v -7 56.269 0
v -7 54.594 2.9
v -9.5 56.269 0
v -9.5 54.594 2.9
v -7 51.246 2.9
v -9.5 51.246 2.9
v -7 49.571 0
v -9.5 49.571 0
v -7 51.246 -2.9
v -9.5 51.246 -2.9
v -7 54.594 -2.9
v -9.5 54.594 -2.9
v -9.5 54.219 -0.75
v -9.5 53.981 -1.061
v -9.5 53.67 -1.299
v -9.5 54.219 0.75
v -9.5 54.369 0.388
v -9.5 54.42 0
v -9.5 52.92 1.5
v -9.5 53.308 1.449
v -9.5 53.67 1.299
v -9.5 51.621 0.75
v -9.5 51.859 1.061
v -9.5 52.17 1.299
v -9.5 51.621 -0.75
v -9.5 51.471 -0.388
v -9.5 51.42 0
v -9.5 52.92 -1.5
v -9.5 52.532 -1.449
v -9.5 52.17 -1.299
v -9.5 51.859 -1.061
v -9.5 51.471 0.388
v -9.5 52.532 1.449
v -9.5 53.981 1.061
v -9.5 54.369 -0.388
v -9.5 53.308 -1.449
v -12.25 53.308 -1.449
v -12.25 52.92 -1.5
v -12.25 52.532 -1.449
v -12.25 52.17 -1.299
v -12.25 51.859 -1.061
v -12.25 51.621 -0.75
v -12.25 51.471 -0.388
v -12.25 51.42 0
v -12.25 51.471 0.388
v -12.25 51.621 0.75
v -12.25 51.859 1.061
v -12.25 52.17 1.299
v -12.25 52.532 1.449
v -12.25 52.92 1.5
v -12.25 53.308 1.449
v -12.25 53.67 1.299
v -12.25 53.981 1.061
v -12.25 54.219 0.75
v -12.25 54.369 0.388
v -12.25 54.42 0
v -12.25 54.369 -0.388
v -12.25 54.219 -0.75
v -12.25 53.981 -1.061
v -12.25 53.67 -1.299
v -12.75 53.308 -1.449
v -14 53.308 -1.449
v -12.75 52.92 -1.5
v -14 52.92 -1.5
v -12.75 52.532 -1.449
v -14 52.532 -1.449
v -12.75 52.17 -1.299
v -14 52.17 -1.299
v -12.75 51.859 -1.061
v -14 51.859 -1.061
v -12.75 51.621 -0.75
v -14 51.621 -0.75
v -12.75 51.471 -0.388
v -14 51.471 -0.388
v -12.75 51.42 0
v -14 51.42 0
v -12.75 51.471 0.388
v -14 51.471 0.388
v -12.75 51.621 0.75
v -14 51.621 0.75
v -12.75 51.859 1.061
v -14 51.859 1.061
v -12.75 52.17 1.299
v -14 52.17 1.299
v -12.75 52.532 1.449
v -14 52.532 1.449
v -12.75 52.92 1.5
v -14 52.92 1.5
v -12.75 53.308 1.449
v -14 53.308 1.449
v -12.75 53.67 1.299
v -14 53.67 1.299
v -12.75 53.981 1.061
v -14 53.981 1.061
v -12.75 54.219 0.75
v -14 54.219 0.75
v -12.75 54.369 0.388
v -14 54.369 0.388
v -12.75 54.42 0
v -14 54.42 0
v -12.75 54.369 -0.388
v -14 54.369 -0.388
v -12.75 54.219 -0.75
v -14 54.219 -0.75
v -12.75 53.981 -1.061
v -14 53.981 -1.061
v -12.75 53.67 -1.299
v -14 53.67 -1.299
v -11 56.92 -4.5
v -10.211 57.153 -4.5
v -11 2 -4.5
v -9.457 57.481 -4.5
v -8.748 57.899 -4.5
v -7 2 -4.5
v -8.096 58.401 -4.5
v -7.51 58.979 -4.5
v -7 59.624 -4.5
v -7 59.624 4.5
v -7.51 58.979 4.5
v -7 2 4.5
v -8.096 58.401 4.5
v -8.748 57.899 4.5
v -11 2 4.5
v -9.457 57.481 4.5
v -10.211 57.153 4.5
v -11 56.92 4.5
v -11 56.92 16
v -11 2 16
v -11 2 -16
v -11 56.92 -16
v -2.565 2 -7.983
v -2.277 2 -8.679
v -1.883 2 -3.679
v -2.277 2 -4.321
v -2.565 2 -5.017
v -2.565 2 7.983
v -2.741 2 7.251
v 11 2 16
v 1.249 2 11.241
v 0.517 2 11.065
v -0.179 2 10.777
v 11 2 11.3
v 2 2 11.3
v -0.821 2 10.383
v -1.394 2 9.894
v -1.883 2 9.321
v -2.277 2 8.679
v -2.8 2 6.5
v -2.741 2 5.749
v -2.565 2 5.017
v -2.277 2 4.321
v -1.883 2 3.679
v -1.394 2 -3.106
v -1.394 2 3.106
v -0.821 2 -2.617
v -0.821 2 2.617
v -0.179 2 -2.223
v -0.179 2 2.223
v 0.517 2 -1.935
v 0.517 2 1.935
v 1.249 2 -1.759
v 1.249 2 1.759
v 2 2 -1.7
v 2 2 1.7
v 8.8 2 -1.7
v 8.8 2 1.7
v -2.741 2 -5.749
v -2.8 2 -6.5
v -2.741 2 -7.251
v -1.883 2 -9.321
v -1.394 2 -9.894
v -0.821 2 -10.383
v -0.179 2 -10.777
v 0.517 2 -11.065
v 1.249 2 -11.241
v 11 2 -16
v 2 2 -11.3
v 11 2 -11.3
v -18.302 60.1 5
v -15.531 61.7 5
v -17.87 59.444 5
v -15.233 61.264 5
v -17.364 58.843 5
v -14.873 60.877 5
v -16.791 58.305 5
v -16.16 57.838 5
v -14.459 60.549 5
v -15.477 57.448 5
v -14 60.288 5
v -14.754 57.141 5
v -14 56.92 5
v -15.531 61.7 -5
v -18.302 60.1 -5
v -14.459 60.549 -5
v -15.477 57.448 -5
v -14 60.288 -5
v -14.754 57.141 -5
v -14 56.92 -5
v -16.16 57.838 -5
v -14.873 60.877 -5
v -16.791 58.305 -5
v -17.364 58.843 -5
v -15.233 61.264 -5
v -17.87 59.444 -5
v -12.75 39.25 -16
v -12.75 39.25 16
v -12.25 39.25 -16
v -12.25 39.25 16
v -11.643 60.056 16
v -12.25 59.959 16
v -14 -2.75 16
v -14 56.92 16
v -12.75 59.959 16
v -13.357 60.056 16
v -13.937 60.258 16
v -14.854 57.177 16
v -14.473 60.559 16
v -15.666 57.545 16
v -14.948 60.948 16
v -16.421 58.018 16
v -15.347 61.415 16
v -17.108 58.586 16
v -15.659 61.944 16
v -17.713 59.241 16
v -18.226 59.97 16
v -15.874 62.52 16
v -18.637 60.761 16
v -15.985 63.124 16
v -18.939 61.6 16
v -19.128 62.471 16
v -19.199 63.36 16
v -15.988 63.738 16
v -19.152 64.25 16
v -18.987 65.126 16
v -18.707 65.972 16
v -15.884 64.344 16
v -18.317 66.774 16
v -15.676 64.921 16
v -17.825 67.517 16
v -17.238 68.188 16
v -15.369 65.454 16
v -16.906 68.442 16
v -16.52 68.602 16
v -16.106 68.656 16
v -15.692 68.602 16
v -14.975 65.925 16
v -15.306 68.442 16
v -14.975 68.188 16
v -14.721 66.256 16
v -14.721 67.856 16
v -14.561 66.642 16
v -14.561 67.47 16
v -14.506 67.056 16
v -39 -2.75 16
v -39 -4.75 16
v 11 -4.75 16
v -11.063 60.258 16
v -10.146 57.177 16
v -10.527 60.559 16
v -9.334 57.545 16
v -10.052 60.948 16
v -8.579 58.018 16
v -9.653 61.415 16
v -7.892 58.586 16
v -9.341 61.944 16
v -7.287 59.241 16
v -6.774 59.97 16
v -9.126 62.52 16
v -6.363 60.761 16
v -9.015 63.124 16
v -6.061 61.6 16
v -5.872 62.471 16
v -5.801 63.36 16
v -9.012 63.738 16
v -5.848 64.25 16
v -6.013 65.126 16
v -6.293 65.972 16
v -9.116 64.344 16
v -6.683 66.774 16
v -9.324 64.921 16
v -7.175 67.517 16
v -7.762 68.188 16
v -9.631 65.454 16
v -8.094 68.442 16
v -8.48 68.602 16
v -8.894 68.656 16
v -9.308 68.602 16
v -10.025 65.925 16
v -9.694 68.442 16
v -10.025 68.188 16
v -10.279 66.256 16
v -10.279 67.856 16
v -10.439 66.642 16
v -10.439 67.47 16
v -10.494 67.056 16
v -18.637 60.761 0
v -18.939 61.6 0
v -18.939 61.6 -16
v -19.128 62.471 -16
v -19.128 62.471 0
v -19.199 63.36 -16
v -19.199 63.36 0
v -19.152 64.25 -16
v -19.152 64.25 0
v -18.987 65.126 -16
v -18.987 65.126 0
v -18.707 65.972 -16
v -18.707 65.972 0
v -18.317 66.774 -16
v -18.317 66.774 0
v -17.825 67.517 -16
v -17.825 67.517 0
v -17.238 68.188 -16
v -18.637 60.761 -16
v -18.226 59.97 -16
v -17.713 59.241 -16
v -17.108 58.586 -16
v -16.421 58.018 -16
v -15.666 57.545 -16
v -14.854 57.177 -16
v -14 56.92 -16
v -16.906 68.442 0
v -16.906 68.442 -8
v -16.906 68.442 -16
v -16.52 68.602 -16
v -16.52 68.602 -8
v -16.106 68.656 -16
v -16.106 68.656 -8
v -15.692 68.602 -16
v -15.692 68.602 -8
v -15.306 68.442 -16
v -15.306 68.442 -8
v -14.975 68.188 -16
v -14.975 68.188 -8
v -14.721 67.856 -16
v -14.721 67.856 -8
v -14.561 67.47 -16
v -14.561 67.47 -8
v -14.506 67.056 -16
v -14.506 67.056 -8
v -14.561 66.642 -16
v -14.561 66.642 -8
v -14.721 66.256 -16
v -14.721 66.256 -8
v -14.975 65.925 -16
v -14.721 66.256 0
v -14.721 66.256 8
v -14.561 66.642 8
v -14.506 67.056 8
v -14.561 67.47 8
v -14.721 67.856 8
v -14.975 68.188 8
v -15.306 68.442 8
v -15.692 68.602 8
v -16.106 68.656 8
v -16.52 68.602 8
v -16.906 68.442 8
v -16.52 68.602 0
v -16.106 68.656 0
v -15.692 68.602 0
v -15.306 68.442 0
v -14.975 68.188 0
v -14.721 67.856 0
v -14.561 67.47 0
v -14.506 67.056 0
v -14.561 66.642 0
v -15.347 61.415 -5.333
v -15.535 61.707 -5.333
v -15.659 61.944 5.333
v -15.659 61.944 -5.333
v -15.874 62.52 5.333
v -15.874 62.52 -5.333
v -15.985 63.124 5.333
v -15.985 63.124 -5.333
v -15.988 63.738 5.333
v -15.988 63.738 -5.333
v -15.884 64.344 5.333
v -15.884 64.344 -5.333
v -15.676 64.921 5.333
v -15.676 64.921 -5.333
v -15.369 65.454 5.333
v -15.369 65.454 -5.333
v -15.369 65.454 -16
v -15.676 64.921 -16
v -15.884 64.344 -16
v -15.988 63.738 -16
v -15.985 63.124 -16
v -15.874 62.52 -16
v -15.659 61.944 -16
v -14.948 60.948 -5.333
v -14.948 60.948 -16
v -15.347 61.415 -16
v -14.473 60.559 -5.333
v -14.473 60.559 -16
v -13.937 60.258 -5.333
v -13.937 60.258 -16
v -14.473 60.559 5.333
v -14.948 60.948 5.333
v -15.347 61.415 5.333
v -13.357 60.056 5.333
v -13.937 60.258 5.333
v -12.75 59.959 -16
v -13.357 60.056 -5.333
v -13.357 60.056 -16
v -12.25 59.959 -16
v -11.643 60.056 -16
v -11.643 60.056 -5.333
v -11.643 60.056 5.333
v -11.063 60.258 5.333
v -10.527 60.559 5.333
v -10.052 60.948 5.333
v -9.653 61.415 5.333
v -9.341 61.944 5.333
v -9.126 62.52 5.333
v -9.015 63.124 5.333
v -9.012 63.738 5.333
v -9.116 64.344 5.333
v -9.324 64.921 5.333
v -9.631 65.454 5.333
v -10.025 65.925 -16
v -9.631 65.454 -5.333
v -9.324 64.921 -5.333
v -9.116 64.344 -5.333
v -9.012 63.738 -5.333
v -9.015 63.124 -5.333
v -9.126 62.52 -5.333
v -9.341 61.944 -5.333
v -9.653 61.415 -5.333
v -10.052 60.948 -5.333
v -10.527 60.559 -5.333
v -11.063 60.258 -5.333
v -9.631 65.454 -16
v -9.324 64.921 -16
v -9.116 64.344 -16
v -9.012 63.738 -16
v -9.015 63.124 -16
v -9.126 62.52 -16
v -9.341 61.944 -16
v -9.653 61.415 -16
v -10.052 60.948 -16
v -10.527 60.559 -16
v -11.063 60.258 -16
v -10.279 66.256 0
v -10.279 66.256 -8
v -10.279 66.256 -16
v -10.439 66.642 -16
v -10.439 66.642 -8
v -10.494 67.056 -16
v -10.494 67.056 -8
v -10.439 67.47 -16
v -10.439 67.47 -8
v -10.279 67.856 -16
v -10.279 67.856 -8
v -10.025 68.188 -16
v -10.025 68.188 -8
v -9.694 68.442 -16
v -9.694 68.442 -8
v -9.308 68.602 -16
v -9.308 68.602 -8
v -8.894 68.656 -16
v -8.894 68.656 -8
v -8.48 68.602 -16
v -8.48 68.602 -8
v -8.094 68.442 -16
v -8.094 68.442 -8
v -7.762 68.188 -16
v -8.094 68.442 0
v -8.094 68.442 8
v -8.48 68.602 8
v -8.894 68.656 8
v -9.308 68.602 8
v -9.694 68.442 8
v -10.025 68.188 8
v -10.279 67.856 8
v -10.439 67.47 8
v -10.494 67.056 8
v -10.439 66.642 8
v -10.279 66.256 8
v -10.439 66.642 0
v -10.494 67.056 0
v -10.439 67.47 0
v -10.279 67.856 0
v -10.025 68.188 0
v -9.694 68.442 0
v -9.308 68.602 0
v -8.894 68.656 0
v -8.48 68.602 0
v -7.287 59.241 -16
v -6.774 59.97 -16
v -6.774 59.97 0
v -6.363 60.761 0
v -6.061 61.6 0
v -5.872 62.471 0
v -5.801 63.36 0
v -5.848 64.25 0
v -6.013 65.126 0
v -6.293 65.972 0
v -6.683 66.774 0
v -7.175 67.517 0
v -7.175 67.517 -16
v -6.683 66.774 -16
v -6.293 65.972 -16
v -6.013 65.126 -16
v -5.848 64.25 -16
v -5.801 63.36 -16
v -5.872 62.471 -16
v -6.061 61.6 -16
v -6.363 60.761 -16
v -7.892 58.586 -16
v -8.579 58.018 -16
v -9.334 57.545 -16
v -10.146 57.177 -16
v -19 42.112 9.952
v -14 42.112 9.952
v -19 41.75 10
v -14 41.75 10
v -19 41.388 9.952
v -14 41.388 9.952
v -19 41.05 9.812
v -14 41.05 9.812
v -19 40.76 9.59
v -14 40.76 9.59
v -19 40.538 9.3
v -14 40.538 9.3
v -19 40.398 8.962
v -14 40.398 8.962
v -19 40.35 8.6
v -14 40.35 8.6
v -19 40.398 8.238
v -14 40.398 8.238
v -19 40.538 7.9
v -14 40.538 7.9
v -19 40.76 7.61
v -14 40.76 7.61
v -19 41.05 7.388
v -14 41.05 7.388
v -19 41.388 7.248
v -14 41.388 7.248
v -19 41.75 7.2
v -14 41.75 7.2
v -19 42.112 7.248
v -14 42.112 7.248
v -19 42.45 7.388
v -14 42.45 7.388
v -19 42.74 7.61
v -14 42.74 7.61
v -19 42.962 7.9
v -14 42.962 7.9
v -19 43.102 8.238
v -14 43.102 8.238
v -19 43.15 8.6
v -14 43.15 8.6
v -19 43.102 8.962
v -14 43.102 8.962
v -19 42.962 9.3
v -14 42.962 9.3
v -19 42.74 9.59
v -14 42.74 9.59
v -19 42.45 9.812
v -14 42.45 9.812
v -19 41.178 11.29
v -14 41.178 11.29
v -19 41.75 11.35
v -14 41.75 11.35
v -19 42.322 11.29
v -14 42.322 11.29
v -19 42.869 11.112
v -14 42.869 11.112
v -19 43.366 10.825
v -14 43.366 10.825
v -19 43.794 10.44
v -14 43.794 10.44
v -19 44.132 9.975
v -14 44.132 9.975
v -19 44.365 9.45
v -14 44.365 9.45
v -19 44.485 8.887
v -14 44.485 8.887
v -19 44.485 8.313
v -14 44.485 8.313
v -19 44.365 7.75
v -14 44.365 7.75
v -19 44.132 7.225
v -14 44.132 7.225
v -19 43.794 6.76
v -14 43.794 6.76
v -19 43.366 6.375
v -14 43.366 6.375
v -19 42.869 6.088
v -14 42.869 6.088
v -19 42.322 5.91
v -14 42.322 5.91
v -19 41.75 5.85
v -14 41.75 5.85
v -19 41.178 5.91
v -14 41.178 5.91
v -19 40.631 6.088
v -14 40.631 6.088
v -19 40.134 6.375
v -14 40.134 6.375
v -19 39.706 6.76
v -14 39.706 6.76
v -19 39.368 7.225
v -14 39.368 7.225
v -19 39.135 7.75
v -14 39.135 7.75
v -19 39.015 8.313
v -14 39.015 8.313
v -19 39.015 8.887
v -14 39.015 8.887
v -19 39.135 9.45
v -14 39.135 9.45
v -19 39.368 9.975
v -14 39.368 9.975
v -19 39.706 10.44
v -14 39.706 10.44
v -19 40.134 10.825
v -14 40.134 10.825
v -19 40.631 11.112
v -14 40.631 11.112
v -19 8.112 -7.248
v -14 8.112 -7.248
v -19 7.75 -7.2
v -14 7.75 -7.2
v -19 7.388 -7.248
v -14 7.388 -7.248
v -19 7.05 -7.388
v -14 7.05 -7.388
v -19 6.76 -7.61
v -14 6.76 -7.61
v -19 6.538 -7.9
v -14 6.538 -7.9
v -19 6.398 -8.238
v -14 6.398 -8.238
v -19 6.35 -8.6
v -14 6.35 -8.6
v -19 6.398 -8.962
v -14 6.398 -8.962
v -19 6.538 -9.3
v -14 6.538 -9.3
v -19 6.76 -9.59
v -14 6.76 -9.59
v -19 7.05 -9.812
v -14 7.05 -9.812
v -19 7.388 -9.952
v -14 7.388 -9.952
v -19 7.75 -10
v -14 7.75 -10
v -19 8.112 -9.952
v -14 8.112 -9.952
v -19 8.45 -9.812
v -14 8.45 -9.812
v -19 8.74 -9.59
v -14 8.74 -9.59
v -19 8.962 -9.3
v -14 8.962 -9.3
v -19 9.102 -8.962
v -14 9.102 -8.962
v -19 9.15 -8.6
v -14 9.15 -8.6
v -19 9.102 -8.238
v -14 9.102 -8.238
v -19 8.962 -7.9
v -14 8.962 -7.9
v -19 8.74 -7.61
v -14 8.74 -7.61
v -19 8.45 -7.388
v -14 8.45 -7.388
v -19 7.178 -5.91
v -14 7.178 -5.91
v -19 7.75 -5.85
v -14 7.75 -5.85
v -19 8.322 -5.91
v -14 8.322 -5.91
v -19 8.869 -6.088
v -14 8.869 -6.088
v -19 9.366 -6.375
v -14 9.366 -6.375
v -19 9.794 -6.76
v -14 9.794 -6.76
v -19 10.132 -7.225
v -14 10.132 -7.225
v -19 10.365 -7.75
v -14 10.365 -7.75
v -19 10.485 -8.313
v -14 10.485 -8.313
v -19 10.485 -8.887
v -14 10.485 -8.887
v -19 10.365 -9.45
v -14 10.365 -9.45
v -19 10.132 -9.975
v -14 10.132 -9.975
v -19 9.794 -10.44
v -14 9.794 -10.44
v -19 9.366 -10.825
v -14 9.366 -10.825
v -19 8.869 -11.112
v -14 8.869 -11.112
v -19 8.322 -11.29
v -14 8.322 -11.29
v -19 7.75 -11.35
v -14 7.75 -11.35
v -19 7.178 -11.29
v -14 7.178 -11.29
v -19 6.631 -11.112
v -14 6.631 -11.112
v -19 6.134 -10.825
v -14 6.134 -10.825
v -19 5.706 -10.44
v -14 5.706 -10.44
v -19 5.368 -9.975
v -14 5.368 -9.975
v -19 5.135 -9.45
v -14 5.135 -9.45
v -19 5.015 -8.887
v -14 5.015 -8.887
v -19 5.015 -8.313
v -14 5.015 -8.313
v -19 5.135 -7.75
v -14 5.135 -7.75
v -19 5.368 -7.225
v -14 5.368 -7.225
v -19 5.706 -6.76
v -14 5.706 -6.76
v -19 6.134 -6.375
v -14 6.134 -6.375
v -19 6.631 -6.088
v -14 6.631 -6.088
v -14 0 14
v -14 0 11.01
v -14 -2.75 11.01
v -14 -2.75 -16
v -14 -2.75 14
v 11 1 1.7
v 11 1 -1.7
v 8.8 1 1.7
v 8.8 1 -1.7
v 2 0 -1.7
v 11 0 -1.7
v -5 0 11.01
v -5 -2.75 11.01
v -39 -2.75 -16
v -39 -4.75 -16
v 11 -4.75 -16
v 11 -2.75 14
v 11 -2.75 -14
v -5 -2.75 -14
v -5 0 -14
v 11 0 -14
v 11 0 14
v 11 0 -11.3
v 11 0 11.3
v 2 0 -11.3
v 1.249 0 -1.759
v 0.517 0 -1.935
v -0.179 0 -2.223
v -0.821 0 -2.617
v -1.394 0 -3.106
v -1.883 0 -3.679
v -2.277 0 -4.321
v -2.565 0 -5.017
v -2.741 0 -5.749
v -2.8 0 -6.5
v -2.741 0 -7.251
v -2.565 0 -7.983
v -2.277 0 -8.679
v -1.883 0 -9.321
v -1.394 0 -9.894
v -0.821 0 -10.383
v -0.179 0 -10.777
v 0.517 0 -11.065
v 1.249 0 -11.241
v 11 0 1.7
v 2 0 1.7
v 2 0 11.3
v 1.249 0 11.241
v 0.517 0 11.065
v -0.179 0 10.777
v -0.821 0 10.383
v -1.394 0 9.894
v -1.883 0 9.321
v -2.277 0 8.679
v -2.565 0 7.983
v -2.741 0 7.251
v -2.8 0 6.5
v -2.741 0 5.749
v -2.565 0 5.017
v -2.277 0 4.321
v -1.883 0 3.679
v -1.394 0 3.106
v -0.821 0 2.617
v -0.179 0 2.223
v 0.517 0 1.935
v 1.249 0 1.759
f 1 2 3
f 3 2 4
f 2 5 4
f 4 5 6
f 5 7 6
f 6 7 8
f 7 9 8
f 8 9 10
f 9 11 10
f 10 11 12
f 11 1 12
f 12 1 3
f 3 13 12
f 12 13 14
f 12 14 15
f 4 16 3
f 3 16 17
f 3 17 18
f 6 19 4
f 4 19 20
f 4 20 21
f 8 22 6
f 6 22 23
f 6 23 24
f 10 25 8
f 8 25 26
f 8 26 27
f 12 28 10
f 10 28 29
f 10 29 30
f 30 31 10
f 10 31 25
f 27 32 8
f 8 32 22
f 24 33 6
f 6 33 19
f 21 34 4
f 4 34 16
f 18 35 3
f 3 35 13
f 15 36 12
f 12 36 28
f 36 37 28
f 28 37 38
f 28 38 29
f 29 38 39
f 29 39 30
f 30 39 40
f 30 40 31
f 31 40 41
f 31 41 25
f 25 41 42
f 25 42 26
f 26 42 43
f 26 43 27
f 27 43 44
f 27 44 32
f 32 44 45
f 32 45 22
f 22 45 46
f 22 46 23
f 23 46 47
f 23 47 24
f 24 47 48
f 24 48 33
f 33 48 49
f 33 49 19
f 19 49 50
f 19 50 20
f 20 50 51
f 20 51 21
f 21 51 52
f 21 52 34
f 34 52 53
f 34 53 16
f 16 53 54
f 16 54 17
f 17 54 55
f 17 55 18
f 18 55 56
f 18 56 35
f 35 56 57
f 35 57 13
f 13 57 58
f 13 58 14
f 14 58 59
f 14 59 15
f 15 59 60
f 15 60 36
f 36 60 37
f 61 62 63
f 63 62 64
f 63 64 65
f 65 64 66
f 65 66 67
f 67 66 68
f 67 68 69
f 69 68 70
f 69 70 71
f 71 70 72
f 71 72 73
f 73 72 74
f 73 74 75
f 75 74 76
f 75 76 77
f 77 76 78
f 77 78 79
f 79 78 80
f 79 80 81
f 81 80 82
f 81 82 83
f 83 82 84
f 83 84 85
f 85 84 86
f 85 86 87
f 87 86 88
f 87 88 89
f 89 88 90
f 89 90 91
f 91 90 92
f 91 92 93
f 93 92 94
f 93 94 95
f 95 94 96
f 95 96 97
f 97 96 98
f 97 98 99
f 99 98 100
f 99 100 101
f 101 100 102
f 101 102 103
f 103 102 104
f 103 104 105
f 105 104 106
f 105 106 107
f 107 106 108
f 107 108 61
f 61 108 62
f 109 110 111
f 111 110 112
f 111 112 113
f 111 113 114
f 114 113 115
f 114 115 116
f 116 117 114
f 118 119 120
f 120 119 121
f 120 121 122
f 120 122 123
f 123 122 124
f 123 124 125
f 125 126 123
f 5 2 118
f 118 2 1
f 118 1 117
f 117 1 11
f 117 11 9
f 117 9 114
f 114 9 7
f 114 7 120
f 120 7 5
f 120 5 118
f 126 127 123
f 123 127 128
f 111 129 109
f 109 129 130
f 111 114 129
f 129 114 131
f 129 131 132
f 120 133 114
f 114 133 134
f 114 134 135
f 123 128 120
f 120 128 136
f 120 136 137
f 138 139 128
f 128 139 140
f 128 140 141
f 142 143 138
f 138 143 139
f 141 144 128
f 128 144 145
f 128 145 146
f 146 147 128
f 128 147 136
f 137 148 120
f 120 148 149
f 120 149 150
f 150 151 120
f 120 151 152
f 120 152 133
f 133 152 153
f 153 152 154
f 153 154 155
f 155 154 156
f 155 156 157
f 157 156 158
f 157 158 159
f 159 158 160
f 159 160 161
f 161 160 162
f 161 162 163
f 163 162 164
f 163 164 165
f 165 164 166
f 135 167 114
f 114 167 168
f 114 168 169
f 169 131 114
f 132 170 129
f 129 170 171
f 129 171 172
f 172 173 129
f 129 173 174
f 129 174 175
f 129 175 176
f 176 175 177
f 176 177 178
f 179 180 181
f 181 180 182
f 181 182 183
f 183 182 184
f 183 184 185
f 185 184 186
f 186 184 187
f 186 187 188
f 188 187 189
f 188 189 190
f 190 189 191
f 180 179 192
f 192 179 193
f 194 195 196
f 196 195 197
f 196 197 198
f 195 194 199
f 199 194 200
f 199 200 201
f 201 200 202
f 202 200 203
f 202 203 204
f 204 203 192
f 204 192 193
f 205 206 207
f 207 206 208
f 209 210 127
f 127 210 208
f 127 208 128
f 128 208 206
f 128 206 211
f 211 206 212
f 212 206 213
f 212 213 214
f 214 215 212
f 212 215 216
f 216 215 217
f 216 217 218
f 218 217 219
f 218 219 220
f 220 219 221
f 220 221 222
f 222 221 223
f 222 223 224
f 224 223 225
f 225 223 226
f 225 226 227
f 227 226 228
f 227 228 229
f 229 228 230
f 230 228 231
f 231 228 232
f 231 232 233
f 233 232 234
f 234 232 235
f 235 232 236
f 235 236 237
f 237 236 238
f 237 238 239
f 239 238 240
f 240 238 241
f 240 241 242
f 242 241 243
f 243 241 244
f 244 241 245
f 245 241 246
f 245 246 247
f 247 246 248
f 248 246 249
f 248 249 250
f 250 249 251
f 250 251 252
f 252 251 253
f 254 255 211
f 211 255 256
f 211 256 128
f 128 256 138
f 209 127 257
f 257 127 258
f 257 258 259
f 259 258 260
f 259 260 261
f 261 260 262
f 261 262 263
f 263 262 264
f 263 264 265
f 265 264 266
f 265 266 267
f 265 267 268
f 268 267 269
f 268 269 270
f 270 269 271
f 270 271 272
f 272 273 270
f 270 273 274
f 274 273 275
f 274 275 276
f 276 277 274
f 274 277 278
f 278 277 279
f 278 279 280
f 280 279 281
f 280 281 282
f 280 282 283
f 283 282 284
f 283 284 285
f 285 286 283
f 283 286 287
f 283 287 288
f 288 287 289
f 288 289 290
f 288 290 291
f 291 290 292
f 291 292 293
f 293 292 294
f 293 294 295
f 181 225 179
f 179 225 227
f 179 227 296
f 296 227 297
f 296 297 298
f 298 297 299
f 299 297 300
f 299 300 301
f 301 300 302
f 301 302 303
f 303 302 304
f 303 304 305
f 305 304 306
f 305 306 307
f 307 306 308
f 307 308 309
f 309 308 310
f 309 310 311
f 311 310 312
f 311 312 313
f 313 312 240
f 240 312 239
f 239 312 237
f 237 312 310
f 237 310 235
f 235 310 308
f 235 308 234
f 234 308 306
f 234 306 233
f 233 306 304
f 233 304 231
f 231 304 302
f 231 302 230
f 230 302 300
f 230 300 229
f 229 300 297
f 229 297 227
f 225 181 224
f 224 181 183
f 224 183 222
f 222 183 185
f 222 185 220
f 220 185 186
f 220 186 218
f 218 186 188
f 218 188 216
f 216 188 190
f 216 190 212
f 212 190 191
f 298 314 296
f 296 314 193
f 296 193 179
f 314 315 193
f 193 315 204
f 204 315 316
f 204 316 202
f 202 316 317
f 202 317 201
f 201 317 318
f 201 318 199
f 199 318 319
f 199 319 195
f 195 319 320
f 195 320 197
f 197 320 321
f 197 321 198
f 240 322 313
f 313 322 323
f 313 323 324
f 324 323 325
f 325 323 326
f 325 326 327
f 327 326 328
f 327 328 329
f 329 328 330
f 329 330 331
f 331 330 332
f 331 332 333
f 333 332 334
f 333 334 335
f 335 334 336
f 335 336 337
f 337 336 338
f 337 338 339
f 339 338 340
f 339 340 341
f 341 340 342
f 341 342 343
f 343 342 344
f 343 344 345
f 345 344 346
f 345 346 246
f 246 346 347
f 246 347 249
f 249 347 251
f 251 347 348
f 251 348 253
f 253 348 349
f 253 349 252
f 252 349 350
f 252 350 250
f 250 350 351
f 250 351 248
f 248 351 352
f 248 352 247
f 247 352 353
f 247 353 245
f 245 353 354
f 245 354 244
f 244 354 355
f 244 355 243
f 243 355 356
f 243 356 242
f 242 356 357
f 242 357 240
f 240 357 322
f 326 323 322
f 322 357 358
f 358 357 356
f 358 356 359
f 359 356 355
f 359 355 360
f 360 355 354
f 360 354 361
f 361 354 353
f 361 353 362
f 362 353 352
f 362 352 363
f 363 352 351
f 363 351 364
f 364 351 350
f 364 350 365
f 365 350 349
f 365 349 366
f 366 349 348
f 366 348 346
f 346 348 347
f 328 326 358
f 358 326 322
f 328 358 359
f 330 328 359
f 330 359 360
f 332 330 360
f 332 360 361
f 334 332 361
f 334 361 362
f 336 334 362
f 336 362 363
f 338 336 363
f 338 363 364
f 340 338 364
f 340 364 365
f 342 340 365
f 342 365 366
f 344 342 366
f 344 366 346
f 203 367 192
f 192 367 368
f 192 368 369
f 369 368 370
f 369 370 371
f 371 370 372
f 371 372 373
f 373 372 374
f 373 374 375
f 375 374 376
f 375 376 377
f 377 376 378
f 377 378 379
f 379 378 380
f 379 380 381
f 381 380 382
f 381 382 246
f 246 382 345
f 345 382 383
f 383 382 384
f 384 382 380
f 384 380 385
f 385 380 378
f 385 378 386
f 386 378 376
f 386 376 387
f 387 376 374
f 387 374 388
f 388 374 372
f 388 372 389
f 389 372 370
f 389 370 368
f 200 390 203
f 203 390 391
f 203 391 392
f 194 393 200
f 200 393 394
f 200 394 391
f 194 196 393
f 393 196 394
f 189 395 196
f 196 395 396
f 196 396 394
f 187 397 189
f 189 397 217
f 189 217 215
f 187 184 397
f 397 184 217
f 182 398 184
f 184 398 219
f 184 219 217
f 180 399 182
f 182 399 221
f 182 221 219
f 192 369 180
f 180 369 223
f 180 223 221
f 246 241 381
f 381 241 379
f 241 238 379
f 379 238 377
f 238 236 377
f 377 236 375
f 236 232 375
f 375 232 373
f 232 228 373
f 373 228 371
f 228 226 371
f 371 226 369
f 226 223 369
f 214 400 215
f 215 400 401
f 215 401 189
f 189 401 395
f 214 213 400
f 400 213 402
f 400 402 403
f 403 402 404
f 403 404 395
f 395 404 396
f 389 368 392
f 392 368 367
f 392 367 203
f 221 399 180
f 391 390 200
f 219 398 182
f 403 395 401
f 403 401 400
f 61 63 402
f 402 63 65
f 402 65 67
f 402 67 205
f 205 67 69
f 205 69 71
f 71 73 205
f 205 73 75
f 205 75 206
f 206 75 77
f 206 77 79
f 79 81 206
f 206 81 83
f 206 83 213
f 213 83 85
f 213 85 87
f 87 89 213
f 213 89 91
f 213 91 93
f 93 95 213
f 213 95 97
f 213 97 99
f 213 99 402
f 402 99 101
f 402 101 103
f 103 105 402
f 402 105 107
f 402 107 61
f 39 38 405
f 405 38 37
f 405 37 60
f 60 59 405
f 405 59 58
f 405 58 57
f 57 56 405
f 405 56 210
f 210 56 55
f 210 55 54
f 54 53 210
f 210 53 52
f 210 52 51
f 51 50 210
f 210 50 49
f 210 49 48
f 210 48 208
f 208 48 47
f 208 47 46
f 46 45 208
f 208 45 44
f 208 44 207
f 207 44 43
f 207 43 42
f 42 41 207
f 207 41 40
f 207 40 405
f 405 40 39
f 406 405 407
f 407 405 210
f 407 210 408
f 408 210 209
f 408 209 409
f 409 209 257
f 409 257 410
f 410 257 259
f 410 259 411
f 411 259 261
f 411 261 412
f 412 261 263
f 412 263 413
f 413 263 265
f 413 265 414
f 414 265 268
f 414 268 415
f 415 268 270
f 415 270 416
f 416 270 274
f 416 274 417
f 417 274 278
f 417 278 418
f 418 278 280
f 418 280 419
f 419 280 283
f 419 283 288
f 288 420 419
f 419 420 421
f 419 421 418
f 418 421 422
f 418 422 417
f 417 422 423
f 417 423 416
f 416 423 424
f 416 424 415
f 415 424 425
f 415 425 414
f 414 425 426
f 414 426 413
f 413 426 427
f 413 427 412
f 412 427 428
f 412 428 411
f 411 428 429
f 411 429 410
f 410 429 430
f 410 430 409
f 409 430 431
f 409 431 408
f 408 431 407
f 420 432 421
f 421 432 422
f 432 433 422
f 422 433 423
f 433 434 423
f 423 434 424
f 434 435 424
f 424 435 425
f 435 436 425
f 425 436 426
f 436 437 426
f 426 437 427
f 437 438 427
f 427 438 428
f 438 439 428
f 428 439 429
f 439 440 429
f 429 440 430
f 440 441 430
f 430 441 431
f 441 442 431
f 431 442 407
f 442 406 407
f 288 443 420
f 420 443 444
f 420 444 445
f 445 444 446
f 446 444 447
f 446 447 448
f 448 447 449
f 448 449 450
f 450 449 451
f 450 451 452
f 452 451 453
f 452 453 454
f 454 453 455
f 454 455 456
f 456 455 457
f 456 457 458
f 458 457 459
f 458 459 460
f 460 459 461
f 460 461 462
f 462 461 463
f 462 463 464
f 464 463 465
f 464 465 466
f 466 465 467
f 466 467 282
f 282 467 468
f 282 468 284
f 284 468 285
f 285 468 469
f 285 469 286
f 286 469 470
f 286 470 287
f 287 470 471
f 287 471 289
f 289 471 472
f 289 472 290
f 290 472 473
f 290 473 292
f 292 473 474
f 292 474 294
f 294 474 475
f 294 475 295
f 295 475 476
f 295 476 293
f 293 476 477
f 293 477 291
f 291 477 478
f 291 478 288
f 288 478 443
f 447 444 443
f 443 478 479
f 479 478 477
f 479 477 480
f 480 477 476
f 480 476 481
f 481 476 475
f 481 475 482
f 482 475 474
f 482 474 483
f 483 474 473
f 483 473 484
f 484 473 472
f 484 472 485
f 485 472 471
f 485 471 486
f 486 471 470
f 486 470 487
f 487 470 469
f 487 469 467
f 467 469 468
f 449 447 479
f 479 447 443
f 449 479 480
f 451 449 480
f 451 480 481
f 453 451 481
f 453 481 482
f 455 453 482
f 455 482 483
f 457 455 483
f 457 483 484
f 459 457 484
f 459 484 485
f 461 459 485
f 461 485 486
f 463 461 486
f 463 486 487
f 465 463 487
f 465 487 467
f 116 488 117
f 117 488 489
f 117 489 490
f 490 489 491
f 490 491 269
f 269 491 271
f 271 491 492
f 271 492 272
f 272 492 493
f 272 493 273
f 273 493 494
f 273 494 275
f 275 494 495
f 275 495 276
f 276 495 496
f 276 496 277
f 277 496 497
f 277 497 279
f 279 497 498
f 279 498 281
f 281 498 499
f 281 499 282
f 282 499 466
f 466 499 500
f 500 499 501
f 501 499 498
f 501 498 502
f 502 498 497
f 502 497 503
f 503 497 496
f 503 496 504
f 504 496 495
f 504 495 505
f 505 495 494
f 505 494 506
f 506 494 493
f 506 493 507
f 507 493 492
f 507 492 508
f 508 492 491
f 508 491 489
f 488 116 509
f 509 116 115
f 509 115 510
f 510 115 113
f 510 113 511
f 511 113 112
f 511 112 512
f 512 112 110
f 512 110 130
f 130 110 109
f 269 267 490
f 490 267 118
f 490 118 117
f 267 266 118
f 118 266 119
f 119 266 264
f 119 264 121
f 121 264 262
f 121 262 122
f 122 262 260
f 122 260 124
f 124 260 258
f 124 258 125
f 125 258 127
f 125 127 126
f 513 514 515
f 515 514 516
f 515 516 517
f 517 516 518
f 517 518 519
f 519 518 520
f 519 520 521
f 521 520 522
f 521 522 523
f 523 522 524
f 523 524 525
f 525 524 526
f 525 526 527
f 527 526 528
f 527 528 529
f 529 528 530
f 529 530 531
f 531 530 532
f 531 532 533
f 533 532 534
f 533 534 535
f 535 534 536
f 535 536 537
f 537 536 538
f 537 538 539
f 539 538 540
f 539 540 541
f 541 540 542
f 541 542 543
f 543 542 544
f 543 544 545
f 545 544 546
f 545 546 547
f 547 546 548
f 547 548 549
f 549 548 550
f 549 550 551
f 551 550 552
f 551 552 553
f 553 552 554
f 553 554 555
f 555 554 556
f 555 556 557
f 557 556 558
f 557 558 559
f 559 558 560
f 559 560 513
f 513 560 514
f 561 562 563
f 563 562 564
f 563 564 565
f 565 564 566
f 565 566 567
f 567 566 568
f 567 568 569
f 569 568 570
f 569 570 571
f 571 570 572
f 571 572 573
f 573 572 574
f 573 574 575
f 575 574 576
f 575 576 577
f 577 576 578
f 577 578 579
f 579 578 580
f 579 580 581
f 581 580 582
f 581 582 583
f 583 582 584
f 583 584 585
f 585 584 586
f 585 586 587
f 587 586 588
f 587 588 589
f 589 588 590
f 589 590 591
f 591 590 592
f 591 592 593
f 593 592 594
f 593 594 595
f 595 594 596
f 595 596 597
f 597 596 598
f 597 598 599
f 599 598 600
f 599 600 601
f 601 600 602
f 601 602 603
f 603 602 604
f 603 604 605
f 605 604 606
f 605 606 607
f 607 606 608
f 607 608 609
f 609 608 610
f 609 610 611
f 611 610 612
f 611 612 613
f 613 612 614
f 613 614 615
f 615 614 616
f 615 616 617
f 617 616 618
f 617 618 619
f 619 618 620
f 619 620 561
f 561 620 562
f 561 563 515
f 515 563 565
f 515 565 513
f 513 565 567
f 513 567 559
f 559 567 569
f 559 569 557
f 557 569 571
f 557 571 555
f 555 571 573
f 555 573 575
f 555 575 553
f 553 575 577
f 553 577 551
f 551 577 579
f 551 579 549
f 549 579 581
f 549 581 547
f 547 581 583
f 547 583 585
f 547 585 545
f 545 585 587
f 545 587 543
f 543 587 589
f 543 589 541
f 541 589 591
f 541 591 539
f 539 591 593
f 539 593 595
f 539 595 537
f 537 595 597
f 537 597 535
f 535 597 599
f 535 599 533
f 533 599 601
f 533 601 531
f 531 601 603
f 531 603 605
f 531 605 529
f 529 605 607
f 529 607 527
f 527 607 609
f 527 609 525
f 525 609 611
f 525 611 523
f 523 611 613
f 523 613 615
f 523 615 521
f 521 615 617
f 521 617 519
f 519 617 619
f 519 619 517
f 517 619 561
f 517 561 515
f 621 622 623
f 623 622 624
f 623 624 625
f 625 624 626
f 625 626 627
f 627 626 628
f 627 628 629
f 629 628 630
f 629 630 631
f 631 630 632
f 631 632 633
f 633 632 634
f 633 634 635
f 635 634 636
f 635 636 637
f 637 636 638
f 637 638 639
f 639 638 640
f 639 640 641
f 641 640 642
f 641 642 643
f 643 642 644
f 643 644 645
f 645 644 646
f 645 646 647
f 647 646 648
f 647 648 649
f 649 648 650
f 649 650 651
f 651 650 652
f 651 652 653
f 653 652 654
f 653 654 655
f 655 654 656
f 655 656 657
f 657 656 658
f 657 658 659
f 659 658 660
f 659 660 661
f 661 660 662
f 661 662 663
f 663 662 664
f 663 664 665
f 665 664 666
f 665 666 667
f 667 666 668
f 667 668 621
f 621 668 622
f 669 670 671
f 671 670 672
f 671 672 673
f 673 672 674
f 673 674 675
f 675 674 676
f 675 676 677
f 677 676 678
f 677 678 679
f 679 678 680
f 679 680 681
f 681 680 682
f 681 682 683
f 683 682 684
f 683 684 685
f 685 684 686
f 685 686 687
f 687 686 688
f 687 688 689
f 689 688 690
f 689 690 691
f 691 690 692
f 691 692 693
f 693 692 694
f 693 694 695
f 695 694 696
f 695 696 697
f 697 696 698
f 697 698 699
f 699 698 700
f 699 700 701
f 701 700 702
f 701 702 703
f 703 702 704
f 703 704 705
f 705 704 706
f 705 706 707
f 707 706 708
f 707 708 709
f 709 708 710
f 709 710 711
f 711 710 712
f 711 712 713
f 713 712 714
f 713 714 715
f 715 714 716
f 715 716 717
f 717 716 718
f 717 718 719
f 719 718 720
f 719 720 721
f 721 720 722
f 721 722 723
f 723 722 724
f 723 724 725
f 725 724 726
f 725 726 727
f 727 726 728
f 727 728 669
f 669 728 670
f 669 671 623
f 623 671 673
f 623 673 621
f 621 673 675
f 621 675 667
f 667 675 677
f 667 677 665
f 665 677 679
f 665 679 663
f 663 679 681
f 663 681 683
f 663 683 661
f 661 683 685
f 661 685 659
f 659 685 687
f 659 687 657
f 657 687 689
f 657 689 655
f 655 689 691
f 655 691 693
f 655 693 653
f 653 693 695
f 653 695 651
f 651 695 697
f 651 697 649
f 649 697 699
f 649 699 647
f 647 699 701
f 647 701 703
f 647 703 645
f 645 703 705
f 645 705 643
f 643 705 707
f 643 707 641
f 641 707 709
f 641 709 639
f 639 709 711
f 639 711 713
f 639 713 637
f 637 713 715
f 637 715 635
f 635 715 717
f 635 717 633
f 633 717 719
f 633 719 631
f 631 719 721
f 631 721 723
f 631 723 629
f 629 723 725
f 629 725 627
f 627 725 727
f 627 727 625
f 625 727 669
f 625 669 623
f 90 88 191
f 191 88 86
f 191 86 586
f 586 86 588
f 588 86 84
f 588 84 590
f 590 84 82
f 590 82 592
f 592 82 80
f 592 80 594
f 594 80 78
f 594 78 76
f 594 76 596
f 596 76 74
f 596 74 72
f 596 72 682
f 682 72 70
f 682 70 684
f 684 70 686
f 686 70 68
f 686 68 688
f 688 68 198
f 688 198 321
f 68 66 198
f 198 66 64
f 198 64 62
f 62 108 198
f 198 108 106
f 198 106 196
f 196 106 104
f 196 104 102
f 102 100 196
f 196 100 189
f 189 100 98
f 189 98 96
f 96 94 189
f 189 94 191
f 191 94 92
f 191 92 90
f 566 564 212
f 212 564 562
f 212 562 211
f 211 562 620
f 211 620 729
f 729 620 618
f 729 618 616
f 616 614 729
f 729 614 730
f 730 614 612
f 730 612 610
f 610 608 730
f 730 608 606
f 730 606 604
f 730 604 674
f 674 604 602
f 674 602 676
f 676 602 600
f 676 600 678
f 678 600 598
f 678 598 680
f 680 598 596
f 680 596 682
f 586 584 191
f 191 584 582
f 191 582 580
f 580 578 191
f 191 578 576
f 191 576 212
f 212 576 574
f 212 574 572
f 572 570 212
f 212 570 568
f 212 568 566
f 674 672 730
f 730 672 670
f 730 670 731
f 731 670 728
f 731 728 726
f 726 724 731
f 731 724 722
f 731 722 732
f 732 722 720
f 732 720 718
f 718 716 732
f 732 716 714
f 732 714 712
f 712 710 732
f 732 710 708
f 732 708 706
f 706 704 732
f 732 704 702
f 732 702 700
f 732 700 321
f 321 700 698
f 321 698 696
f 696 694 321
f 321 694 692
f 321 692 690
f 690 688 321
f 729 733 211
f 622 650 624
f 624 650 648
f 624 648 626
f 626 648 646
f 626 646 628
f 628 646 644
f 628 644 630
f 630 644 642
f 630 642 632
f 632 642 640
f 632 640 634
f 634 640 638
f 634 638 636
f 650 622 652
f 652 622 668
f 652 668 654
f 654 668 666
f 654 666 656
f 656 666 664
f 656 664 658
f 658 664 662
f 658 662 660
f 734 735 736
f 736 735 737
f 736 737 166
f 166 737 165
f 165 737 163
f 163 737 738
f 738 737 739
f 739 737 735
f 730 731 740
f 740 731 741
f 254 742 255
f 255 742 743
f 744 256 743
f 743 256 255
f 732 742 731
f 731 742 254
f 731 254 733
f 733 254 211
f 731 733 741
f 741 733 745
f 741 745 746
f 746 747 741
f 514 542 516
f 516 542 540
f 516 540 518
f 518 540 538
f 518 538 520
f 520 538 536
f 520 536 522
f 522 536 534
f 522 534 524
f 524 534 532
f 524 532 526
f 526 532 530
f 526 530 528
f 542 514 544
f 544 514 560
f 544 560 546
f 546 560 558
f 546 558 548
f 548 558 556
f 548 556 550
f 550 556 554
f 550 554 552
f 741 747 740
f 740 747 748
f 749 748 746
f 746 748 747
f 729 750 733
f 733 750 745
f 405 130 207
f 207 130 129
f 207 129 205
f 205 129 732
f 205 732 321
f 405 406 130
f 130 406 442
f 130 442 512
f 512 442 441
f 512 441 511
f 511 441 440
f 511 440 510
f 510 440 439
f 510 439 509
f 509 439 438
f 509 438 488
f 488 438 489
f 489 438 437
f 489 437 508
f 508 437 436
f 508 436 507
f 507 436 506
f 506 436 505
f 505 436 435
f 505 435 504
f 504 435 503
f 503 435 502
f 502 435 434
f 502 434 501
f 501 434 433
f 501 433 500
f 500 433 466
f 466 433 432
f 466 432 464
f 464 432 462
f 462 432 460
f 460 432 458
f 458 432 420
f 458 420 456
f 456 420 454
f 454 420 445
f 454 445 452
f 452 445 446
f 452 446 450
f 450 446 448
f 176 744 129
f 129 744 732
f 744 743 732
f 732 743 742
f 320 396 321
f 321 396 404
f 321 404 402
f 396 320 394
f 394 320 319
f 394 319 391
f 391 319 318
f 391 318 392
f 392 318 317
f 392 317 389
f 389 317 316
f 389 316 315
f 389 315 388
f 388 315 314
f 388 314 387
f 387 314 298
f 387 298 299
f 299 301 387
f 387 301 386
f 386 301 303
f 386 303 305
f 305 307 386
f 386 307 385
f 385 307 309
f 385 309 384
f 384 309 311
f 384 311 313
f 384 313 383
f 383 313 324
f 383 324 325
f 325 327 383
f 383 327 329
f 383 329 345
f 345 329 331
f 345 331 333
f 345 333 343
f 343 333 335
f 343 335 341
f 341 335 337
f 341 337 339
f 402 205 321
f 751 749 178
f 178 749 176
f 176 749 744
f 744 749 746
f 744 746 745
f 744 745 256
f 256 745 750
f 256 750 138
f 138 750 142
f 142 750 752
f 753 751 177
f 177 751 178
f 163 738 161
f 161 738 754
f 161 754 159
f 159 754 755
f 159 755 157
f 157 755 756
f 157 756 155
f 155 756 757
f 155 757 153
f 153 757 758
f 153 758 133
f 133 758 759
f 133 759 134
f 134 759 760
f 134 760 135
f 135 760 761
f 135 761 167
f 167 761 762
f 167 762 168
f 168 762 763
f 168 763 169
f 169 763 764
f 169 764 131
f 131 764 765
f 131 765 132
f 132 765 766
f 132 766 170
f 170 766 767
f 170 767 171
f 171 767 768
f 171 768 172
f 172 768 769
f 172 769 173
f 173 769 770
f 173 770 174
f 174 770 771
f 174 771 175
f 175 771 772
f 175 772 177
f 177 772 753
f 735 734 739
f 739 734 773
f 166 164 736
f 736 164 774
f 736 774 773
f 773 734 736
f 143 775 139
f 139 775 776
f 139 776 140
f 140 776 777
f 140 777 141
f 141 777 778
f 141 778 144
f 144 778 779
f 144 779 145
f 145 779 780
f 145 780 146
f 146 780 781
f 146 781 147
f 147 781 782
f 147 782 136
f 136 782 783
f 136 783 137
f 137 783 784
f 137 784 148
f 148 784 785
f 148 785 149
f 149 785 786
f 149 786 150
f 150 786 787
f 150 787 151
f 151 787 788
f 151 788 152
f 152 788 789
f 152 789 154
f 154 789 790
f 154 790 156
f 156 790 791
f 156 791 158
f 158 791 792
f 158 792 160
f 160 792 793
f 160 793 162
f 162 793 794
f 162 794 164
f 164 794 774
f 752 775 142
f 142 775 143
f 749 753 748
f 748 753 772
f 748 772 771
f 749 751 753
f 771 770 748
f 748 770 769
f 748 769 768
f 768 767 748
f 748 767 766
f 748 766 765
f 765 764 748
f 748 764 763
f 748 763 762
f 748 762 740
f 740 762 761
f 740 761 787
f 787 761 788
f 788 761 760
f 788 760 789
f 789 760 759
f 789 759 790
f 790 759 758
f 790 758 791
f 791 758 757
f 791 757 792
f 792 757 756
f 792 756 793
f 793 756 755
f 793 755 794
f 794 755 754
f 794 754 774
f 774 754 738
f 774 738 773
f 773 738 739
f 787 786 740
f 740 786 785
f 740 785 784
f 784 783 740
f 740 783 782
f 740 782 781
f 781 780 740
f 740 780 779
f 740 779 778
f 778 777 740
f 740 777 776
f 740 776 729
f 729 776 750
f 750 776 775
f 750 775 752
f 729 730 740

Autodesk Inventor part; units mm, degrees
ref_plane "YZ Plane" through (0, 0, 0) normal (1, 0, 0) x (0, 1, 0)
ref_plane "XZ Plane" through (0, 0, 0) normal (0, 1, 0) x (-1, 0, 0)
ref_plane "XY Plane" through (0, 0, 0) normal (0, 0, 1) x (1, 0, 0)
sketch "Sketch1" plane through (0, 0, 0) normal (0, 1, 0) x (-1, 0, 0)
  line L0 (11, -16) -> (-11, -16)
  line L1 (-11, -16) -> (-11, 16)
  line L2 (-11, 16) -> (11, 16)
  line L3 (11, 16) -> (11, -16)
  line L4 (11, -16) -> (-11, 16) construction
  line L5 (-11, -16) -> (11, 16) construction
  circle A0 centre (-2, 6.5) radius 4.8
  line L6 (-2, 6.5) -> (-2, -6.5)
  circle A1 centre (-2, -6.5) radius 4.8
  line L7 (-2, 11.3) -> (-11, 11.3)
  line L8 (-2, 1.7) -> (-11, 1.7)
  line L9 (-2, -1.7) -> (-11, -1.7)
  line L10 (-2, -11.3) -> (-11, -11.3)
  point P0 (0, 0)
  point P1 (-2, 0)
  dimension "d0" = 22
  dimension "d1" = 32
  dimension "d2" = 9.6
  dimension "d3" = 13
  dimension "d4" = 9.6
extrude "Extrusion1" add sketch "Sketch1" along normal blind 2 contours L0 L1 L10 A1 L6 A0 L7 L2 L3 | L1 L8 L6 L9
sketch "Sketch2" plane through (0, 0, 0) normal (0, -1, 0) x (1, 0, 0)
  line L0 (-11, 16) -> (11, 16) projected
  line L1 (11, 16) -> (-11, 16)
  line L2 (-11, -16) -> (-11, 16) projected
  line L3 (-11, 16) -> (-11, -16)
  line L4 (11, -16) -> (-11, -16) projected
  line L5 (-11, -16) -> (11, -16)
  line L6 (11, -16) -> (11, -14)
  line L7 (11, -11.3) -> (11, -16) projected
  line L8 (11, -14) -> (-5, -14)
  line L9 (-5, -14) -> (-5, 14)
  line L10 (-5, 14) -> (11, 14)
  line L11 (11, 16) -> (11, 11.3) projected
  point P0 (0, 0)
  dimension "d7" = 2
  dimension "d8" = 16
  dimension "d9" = 28
extrude "Extrusion2" add sketch "Sketch2" along normal blind 2.75
sketch "Sketch3" plane through (-11, 2, -16) normal (-1, 0, 0) x (0, 0, 1)
  line L0 (0, 0) -> (0, -4.75) projected
  line L1 (0, -4.75) -> (32, -4.75)
  line L2 (32, -4.75) -> (32, 49.75)
  line L3 (32, 49.75) -> (0, 49.75)
  line L4 (0, 49.75) -> (0, -4.75)
  point P0 (16, -2)
  dimension "d12" = 54.5
extrude "Extrusion3" add sketch "Sketch3" along normal blind 3
sketch "Sketch4" plane through (0, -2.75, 0) normal (0, -1, 0) x (1, 0, 0)
  line L0 (11, 16) -> (11, 11.3) projected
  line L1 (11, 16) -> (-39, 16)
  line L2 (-39, 16) -> (-39, -16)
  line L3 (-39, -16) -> (11, -16)
  line L4 (11, -16) -> (11, 16)
  point P0 (0, 0)
  dimension "d15" = 50
extrude "Extrusion4" add sketch "Sketch4" along normal blind 2
sketch "Sketch5" plane through (-5, 0, 14) normal (1, 0, 0) x (0, 0, -1)
  line L0 (0, 0) -> (0, -2.75) projected
  line L1 (30, -2.75) -> (-2, -2.75) projected
  line L2 (0, 0) -> (2.9896, 0)
  line L3 (2.9896, 0) -> (2.9896, -2.75)
  line L4 (2.9896, -2.75) -> (0, -2.5)
  line L5 (0, -2.5) -> (0, 0)
  point P0 (14, 0)
  dimension "d18" = 3
extrude "Extrusion5" cut sketch "Sketch5" against normal up to surface (9 mm away)
sketch "Sketch6" plane through (11, 0, 1.7) normal (1, 0, 0) x (0, 0, -1)
  line L0 (0, 0) -> (0, 2) projected
  line L1 (3.4, 0) -> (3.4, 2) projected
  line L2 (0, 1) -> (3.4, 1)
  line L3 (3.4, 1) -> (3.4, 2)
  line L4 (3.4, 2) -> (0, 2)
  line L5 (0, 2) -> (0, 1)
  point P0 (1.7, 0)
extrude "Extrusion6" cut sketch "Sketch6" against normal blind 2.2
sketch "Sketch8" plane through (-14, 2, -16) normal (-1, 0, 0) x (0, 0, 1)
  circle A0 centre (24.6, 39.75) radius 2.75
  circle A1 centre (24.6, 39.75) radius 1.4
  line L0 (4, 47.25) -> (28, 47.25) construction
  line L1 (28, 47.25) -> (28, -1.75) construction
  line L2 (28, -1.75) -> (4, -1.75) construction
  line L3 (4, -1.75) -> (4, 47.25) construction
  circle A2 centre (7.4, 5.75) radius 2.75
  circle A3 centre (7.4, 5.75) radius 1.4
  line L4 (4, 47.25) -> (28, -1.75) construction
  line L5 (32, -4.75) -> (32, -6.75) construction
  line L6 (32, 49.75) -> (0, 49.75) construction
  line L7 (0, -4.75) -> (32, 49.75) construction
  point P0 (16, -2)
  point P1 (16, 22.75)
  point P2 (16, 22.5)
  dimension "d24" = 5.5
  dimension "d25" = 2.8
  dimension "d26" = 24
  dimension "d27" = 49
  dimension "d28" = 3.4
  dimension "d29" = 7.5
  dimension "d30" = 5.5
  dimension "d31" = 2.8
  dimension "d32" = 3.4
  dimension "d33" = 7.5
extrude "Extrusion7" add sketch "Sketch8" along normal blind 5
sketch "Sketch9" plane through (0, 0, 0) normal (0, 0, 1) x (1, 0, 0)
  line L0 (-14, -2.75) -> (-14, 51.75) projected
  line L1 (-12.5, 56.75) -> (-12.5, 54.25) construction
  line L2 (-12.25, 56.75) -> (-12.25, 54.25)
  line L3 (-12.25, 54.25) -> (-12.75, 54.25)
  line L4 (-12.75, 54.25) -> (-12.75, 56.75)
  line L5 (-12.75, 56.75) -> (-12.25, 54.25) construction
  line L6 (-12.25, 56.75) -> (-12.75, 54.25) construction
  circle A0 centre (-12.5, 63.45) radius 6.7
  line L7 (-12.5, 63.45) -> (-12.5, 56.75) construction
  line L8 (-12.25, 56.75) -> (-12.25, 59.7585)
  line L9 (-12.75, 59.7585) -> (-12.75, 56.75)
  line L10 (-12.25, 59.7585) -> (-12.25, 70.1453)
  line L11 (-12.25, 70.1453) -> (-12.75, 70.1453)
  line L12 (-12.75, 70.1453) -> (-12.75, 59.7585)
  line L13 (-12.5, 63.45) -> (-5.8, 63.45) construction
  line L14 (-12.5, 63.45) -> (-5.8, 63.45) construction
  line L15 (-11, 51.75) -> (-14, 51.75) projected
  line L16 (-14, 51.75) -> (-11, 51.75)
  line L17 (-11, 51.75) -> (-11, 56.75)
  line L18 (-11, 56.75) -> (-14, 56.75)
  line L19 (-14, 56.75) -> (-14, 51.75)
  line L20 (-14, 56.75) -> (-11, 56.75)
  line L21 (-11, 56.75) -> (-11, 56.9201)
  line L22 (-11, 56.9201) -> (-14, 56.9201)
  line L23 (-14, 56.9201) -> (-14, 56.75)
  circle A1 centre (-12.5, 63.45) radius 3.5
  line L24 (-12.5, 63.45) -> (-5.8, 63.45) construction
  line L25 (-12.5, 63.45) -> (-5.8, 63.45) construction
  circle A2 centre (-16.1062, 67.0562) radius 1.6
  circle A3 centre (-8.8938, 67.0562) radius 1.6
  point P0 (0, 0)
  point P1 (-12.5, 55.5)
  point P2 (-12.75, 56.7547)
  point P3 (-12.25, 56.7547)
  point P4 (-17.2376, 68.1876)
  point P5 (-12.75, 59.9589)
  point P6 (-14.9749, 65.9249)
  point P7 (-10.0251, 65.9249)
  point P8 (-12.25, 59.9589)
  point P9 (-7.7624, 68.1876)
  dimension "d47" = 0.5
  dimension "d49" = 13.4
  dimension "d50" = 5
  dimension "d57" = 7
extrude "Extrusion8" add sketch "Sketch9" along normal mid plane 32 contours L18 L17 L15 L19 L4 L3 L2 | L8 A0 L21 L18 | L8 L22 A0 | L22 L8 L10 A1 A3 A0 | L9 L18 L23 A0 | A0 L22 L9 | L22 A0 A2 A1 L12 L9 | A3 | A2
sketch "Sketch10" plane through (-11, 2, 16) normal (0, 0, 1) x (1, 0, 0)
  line L0 (-1.75, 52.25) -> (-1.25, 52.25) projected
  line L1 (-1.75, 52.25) -> (-1.25, 52.25)
  line L2 (-1.25, 52.25) -> (-1.25, 37.25)
  line L3 (-1.25, 37.25) -> (-1.75, 37.25)
  line L4 (-1.75, 37.25) -> (-1.75, 52.25)
  line L5 (-1.75, 37.25) -> (-2.4777, 58.0893)
  arc A0 (-3.9749, 63.9249) -> (-1.75, 57.9589) centre (-1.5, 61.45) ccw projected
  line L6 (-1.75, 37.25) -> (19.102, 37.25) construction
  line L7 (-1.25, 37.25) -> (-0.5223, 58.0893)
  arc A1 (-1.25, 57.9589) -> (0.9749, 63.9249) centre (-1.5, 61.45) ccw projected
  line L8 (-1.25, 37.25) -> (19.602, 37.25) construction
  arc A2 (-2.4777, 58.0893) -> (-0.5223, 58.0893) centre (-1.5, 61.45) ccw
  point P0 (11, -2)
  dimension "d51" = 15
  dimension "d60" = 92
  dimension "d61" = 88
extrude "Extrusion9" cut sketch "Sketch10" against normal through all contours L0 L2 L3 L4
sketch "Sketch11" plane through (0, 0, 0) normal (0, 0, 1) x (1, 0, 0)
  line L0 (-14, -2.75) -> (-14, 56.9201) projected
  line L1 (-12.5, 63.45) -> (-18.3024, 60.1)
  line L2 (-14, 56.9201) -> (-14, 62.9804)
  circle A0 centre (-12.5, 63.45) radius 6.7
  point P0 (0, 0)
  point P1 (-14, 62.584)
extrude "Extrusion10" cut sketch "Sketch11" along normal mid plane 10 contours L2 A0 L1 picked at (-14.4333, 58.9557)
sketch "Sketch13" plane through (0, 2, 0) normal (0, 1, 0) x (1, 0, 0)
  line L0 (-11, 16) -> (-11, -16) projected
  line L1 (-11, 0) -> (-9, 0) construction
  line L2 (-11, 4.5) -> (-7, 4.5)
  line L3 (-7, 4.5) -> (-7, -4.5)
  line L4 (-7, -4.5) -> (-11, -4.5)
  line L5 (-11, -4.5) -> (-11, 4.5)
  line L6 (-11, 4.5) -> (-7, -4.5) construction
  line L7 (-7, 4.5) -> (-11, -4.5) construction
  point P0 (0, 0)
  point P1 (-11, -4.5)
  dimension "d66" = 2
  dimension "d67" = 4
  dimension "d68" = 9
extrude "Extrusion12" add sketch "Sketch13" along normal up to surface
sketch "Sketch12" plane through (-14, 2, -16) normal (-1, 0, 0) x (0, 0, 1)
  line L0 (0, 54.9201) -> (32, 54.9201) projected
  line L1 (16, 54.9201) -> (16, 50.9201) construction
  circle A0 centre (16, 50.9201) radius 1.5
  point P0 (16, -2)
  dimension "d62" = 4
  dimension "d63" = 3
extrude "Extrusion11" cut sketch "Sketch12" against normal through all
sketch "Sketch14" plane through (-7, 2, 4.5) normal (1, 0, 0) x (0, 0, -1)
  line L0 (7.4, 49.2458) -> (4.5, 47.5714)
  line L1 (4.5, 47.5714) -> (1.6, 49.2458)
  line L2 (1.6, 49.2458) -> (1.6, 52.5944)
  line L3 (1.6, 52.5944) -> (4.5, 54.2687)
  line L4 (4.5, 54.2687) -> (7.4, 52.5944)
  line L5 (7.4, 52.5944) -> (7.4, 49.2458)
  circle A0 centre (4.5, 50.9201) radius 1.5 projected
  point P0 (4.5, -2)
  point P1 (4.5, 50.9201)
  dimension "d71" = 5.8
  dimension "d74" = 0
extrude "Extrusion13" cut sketch "Sketch14" against normal blind 2.5
properties part number "prototype_8_1_3DPrint"
